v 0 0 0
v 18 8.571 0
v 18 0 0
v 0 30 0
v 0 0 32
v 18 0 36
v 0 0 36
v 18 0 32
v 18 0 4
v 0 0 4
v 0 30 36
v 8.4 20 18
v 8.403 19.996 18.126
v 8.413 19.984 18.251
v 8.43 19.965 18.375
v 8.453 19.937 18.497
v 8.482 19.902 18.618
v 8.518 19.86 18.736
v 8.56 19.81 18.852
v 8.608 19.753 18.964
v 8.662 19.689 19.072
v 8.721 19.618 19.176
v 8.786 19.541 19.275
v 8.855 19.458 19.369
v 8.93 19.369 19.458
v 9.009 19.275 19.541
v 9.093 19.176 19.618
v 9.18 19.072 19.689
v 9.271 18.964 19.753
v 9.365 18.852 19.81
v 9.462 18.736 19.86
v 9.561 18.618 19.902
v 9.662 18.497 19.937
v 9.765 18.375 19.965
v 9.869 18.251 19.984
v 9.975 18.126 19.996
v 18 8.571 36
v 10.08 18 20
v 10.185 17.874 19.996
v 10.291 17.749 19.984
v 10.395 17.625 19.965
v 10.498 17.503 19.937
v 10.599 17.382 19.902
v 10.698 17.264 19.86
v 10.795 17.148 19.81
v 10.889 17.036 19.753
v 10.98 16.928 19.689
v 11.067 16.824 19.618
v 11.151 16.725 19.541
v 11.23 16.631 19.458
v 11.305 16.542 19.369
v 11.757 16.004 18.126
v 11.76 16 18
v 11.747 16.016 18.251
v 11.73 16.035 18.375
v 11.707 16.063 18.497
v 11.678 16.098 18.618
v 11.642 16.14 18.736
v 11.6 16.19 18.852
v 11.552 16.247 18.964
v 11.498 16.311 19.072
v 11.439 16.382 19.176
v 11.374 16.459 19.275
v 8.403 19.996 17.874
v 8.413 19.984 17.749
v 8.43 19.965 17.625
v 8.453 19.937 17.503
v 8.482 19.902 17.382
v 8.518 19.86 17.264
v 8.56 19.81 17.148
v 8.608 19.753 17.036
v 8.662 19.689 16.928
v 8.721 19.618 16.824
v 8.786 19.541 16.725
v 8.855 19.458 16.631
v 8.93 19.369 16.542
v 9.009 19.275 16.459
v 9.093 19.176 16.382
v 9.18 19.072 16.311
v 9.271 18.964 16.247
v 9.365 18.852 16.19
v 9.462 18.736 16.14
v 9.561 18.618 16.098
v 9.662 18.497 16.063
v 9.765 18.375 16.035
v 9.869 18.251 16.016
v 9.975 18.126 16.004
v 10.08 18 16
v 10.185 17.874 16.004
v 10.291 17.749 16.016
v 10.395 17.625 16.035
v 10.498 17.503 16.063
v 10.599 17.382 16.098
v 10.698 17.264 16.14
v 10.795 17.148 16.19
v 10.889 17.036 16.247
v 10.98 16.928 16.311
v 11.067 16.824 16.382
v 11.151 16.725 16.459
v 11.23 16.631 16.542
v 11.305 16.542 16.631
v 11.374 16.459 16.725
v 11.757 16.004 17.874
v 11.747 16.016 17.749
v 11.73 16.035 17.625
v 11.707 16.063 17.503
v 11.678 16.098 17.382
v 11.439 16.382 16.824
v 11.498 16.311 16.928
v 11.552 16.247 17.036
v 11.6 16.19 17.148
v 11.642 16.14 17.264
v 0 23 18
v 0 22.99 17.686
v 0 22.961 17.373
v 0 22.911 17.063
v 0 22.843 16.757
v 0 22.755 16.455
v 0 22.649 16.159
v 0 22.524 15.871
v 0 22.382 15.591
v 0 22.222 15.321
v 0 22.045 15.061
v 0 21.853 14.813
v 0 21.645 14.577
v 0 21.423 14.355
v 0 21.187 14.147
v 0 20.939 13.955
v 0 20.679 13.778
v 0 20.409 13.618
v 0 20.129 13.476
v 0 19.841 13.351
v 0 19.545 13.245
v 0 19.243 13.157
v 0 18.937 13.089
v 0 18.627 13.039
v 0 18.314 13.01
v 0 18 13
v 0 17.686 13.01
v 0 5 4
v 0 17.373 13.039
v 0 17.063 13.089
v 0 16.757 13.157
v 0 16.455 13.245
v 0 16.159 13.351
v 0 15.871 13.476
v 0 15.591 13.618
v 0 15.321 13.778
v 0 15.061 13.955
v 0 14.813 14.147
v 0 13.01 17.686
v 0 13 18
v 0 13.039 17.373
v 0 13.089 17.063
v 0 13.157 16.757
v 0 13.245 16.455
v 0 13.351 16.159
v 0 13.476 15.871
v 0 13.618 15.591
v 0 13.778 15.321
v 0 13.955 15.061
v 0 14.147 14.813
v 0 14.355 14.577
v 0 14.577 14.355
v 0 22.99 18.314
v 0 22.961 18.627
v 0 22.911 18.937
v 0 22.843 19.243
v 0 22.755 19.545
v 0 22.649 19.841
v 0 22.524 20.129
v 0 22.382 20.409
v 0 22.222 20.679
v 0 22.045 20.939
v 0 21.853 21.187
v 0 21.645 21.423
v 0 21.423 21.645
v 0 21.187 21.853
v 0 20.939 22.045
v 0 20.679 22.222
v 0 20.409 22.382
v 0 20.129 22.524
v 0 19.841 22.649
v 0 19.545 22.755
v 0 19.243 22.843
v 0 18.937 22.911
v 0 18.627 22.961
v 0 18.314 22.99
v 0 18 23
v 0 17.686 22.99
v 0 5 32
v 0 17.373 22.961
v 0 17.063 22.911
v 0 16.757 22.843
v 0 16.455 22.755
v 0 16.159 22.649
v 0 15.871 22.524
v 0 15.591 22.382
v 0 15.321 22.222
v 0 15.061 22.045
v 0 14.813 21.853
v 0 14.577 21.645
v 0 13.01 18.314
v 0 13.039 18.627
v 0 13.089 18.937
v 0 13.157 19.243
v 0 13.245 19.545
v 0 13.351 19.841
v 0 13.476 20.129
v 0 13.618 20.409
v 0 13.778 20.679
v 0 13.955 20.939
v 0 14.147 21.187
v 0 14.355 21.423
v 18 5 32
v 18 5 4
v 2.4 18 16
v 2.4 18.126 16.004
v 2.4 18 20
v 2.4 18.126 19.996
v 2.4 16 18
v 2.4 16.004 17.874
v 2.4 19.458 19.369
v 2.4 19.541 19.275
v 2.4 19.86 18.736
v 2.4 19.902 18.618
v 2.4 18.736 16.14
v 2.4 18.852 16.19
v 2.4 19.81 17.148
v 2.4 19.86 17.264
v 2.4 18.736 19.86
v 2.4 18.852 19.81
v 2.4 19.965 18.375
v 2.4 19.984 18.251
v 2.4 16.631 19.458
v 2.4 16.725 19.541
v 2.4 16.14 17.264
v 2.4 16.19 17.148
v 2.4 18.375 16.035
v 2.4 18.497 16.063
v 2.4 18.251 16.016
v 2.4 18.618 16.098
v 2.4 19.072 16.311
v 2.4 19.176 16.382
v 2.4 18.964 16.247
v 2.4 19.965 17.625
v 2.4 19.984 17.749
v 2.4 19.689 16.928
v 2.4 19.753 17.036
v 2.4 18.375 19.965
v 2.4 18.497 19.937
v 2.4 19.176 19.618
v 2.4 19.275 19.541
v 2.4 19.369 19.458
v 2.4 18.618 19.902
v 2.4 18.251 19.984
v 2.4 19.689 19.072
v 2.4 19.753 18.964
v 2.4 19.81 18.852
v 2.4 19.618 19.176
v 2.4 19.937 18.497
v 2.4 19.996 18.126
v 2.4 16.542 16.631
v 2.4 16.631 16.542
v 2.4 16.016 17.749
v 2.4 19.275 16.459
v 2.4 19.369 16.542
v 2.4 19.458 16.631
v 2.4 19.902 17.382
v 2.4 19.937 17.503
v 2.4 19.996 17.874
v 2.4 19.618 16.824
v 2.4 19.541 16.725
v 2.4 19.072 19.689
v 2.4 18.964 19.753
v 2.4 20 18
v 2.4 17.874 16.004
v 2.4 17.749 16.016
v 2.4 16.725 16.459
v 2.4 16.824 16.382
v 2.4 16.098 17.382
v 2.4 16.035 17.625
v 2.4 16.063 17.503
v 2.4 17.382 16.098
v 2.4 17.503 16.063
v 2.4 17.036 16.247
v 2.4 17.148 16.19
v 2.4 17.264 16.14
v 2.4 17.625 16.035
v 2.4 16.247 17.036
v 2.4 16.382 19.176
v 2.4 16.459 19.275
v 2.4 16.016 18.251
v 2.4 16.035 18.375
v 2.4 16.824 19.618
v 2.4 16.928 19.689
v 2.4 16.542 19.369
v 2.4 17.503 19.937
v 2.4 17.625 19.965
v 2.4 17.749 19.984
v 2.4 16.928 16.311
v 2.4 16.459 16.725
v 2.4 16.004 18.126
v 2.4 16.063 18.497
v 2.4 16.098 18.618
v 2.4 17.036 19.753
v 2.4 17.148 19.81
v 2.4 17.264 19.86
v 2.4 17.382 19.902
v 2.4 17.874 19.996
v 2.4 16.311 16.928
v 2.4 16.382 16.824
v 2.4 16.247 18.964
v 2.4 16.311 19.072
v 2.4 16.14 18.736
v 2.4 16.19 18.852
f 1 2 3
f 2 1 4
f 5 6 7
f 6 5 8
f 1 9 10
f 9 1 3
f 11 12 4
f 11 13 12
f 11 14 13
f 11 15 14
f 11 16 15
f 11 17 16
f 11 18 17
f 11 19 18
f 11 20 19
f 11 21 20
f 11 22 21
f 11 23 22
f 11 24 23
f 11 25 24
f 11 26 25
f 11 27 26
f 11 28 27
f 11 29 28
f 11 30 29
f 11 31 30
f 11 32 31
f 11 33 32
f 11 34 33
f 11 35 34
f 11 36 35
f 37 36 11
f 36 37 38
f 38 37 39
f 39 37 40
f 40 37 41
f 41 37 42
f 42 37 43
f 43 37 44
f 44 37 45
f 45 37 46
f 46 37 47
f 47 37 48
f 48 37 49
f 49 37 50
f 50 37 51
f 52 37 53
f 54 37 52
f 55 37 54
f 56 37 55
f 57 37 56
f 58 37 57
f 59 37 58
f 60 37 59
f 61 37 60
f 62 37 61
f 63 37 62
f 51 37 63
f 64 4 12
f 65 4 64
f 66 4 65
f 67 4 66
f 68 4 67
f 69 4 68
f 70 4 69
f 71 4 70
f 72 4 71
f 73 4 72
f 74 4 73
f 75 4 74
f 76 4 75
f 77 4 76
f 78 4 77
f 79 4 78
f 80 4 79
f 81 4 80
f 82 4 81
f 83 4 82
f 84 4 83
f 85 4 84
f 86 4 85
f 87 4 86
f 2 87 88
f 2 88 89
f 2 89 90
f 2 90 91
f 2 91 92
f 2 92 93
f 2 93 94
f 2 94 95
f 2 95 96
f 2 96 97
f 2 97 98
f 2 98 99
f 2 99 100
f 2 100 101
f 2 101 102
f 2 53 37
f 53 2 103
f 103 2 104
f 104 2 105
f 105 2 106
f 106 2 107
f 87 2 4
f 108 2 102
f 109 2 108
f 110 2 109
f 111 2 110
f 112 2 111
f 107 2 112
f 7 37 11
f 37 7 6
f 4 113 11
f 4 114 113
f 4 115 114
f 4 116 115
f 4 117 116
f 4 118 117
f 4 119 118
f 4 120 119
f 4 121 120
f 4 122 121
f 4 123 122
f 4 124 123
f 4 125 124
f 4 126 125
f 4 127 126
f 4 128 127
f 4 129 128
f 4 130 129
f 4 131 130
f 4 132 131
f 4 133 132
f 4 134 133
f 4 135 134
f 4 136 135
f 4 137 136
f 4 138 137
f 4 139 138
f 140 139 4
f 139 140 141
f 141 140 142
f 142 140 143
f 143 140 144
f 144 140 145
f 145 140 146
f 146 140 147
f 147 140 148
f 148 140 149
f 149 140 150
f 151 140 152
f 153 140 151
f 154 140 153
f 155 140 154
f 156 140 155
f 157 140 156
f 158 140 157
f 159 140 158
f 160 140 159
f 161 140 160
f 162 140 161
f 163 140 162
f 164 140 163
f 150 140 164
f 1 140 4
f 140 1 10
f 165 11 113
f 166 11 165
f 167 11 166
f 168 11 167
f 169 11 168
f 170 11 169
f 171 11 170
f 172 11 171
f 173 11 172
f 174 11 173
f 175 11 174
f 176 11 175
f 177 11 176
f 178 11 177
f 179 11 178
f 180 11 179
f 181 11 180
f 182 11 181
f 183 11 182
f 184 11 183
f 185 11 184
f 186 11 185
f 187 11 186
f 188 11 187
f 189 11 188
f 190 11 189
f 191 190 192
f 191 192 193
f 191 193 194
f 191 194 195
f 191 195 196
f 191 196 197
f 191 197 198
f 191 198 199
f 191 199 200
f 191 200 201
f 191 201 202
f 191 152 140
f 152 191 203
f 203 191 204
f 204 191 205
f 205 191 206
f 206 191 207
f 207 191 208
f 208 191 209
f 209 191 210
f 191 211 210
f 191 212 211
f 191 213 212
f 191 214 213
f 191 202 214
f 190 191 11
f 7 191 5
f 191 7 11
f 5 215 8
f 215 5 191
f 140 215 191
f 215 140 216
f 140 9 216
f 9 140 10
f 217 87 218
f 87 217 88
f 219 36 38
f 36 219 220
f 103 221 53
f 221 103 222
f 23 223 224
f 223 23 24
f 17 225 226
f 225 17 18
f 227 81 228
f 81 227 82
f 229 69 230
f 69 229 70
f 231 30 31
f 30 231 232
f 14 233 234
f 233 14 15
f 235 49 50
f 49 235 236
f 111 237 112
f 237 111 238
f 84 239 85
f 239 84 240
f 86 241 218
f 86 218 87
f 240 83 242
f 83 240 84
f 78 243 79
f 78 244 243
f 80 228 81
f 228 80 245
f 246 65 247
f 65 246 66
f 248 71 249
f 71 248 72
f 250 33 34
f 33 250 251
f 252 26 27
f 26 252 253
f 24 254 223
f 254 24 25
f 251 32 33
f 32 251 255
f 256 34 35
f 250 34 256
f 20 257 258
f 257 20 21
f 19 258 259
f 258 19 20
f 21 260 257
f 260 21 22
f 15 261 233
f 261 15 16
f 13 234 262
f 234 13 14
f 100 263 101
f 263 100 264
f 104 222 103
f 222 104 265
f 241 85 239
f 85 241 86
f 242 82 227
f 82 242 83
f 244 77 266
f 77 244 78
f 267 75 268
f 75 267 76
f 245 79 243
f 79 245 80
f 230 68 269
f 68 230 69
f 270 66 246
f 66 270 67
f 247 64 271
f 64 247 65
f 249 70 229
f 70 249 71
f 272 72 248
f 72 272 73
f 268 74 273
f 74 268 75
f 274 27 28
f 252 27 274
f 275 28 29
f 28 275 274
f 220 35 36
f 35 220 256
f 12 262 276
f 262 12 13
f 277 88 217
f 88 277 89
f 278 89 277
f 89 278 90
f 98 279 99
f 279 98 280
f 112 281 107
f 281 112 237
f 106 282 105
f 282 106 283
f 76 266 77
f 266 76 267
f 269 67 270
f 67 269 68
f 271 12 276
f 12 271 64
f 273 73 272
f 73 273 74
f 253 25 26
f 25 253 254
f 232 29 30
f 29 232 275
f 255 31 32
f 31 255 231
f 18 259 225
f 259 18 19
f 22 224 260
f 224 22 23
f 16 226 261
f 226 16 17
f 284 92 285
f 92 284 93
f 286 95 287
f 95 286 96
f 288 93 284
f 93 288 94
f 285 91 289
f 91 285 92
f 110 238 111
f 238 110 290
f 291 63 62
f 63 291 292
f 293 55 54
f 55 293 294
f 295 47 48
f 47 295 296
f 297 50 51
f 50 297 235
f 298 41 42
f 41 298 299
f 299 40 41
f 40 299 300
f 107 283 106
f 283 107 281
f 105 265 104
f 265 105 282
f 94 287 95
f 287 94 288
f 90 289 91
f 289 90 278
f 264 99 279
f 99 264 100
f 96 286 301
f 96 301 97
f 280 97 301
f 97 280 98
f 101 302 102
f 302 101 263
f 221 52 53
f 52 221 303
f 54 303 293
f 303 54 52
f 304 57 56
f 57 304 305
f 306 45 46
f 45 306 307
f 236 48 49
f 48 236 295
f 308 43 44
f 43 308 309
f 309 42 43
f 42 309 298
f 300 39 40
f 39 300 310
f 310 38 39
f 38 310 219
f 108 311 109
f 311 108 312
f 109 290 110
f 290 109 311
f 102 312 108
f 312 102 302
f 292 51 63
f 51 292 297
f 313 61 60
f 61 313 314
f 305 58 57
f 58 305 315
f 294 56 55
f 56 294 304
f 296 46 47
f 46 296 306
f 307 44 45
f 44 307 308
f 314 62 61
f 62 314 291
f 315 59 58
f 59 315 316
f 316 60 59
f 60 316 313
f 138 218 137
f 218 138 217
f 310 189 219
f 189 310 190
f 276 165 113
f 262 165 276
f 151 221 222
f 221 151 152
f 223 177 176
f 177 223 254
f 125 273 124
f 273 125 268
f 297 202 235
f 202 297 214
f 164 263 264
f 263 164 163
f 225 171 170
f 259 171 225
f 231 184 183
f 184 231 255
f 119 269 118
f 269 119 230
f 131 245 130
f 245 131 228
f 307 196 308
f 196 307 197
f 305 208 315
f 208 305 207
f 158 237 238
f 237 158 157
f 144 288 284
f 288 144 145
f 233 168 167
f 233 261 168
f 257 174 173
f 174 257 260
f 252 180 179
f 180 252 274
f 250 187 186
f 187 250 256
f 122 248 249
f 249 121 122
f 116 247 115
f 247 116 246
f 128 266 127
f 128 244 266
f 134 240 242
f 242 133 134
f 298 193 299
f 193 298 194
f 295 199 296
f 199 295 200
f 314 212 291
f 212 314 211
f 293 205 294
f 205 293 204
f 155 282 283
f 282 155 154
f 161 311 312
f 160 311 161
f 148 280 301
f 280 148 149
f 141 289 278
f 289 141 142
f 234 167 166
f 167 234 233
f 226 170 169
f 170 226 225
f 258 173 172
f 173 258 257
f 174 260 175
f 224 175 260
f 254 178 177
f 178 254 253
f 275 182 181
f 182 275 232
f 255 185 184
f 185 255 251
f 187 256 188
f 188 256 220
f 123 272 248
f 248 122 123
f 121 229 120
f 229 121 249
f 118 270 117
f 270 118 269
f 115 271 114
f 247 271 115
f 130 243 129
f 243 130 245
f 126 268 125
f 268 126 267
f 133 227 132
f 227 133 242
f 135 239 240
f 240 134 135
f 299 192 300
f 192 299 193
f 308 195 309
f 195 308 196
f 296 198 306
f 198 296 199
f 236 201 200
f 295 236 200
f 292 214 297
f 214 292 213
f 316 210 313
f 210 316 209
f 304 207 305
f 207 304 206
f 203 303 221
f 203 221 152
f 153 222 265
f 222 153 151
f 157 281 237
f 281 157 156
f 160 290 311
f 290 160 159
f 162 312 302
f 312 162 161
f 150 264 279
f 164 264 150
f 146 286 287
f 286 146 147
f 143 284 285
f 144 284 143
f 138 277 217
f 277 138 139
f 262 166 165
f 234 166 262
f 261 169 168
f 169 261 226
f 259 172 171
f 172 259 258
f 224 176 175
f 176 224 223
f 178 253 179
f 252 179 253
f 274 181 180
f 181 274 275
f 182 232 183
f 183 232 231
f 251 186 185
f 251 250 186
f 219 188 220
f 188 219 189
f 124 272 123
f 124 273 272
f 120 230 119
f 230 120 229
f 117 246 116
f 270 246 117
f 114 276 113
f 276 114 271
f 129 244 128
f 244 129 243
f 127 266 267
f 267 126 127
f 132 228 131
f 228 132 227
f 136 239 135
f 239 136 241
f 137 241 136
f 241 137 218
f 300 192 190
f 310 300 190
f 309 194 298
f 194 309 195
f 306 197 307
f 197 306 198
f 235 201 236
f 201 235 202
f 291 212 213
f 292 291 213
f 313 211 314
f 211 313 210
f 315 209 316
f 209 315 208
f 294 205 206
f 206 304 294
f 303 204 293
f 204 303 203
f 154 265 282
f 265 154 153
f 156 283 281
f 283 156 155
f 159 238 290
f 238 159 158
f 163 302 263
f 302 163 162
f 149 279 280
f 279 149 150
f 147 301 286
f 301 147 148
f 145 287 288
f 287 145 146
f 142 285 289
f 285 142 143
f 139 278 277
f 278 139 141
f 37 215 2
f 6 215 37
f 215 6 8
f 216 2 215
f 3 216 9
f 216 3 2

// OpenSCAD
/*

Cat step for banister gaps to prevent cats getting trapped in V shaped groove
@idnorton
2022-12-27

Licenced as Creative Commons Attribution Non Commercial 3.0
See https://creativecommons.org/licenses/by-nc/3.0/

Specifically you may not sell the design or products using the design.
You're welcome to use the design to build things for your own commercial event

*/

difference() {
    // Width of step
    linear_extrude(
        height = 36,
        center = false,
        $fn = 100) {

            // Triangle wedge
            polygon(points = [
                [0, 0],
                [0, 30],
                [25.2, 0],
            ]);
    }

    // Ballustraid vertical
    translate([0,0,4]) {
        cube(size = [30,5,28], center = false);
    }

    // Screw through hole
    translate([0,18,18]) {
        rotate([0, 90, 0]) {
            cylinder(
                $fn=100,
                h=25,
                d=4,
                center=false
            );
        }
    }

    // Countersink for screw head
    translate([0,18,18]) {
        rotate([0, 90, 0]) {
            cylinder(
                $fn=100,
                h=4,
                d1=10,
                d2=0,
                center=false
            );
        }
    }

    // Trim the pointy bits to account for paint buildup
    translate([18, 0, 0]) {
      cube(size = [30,10,40], center = false);
    }
}
